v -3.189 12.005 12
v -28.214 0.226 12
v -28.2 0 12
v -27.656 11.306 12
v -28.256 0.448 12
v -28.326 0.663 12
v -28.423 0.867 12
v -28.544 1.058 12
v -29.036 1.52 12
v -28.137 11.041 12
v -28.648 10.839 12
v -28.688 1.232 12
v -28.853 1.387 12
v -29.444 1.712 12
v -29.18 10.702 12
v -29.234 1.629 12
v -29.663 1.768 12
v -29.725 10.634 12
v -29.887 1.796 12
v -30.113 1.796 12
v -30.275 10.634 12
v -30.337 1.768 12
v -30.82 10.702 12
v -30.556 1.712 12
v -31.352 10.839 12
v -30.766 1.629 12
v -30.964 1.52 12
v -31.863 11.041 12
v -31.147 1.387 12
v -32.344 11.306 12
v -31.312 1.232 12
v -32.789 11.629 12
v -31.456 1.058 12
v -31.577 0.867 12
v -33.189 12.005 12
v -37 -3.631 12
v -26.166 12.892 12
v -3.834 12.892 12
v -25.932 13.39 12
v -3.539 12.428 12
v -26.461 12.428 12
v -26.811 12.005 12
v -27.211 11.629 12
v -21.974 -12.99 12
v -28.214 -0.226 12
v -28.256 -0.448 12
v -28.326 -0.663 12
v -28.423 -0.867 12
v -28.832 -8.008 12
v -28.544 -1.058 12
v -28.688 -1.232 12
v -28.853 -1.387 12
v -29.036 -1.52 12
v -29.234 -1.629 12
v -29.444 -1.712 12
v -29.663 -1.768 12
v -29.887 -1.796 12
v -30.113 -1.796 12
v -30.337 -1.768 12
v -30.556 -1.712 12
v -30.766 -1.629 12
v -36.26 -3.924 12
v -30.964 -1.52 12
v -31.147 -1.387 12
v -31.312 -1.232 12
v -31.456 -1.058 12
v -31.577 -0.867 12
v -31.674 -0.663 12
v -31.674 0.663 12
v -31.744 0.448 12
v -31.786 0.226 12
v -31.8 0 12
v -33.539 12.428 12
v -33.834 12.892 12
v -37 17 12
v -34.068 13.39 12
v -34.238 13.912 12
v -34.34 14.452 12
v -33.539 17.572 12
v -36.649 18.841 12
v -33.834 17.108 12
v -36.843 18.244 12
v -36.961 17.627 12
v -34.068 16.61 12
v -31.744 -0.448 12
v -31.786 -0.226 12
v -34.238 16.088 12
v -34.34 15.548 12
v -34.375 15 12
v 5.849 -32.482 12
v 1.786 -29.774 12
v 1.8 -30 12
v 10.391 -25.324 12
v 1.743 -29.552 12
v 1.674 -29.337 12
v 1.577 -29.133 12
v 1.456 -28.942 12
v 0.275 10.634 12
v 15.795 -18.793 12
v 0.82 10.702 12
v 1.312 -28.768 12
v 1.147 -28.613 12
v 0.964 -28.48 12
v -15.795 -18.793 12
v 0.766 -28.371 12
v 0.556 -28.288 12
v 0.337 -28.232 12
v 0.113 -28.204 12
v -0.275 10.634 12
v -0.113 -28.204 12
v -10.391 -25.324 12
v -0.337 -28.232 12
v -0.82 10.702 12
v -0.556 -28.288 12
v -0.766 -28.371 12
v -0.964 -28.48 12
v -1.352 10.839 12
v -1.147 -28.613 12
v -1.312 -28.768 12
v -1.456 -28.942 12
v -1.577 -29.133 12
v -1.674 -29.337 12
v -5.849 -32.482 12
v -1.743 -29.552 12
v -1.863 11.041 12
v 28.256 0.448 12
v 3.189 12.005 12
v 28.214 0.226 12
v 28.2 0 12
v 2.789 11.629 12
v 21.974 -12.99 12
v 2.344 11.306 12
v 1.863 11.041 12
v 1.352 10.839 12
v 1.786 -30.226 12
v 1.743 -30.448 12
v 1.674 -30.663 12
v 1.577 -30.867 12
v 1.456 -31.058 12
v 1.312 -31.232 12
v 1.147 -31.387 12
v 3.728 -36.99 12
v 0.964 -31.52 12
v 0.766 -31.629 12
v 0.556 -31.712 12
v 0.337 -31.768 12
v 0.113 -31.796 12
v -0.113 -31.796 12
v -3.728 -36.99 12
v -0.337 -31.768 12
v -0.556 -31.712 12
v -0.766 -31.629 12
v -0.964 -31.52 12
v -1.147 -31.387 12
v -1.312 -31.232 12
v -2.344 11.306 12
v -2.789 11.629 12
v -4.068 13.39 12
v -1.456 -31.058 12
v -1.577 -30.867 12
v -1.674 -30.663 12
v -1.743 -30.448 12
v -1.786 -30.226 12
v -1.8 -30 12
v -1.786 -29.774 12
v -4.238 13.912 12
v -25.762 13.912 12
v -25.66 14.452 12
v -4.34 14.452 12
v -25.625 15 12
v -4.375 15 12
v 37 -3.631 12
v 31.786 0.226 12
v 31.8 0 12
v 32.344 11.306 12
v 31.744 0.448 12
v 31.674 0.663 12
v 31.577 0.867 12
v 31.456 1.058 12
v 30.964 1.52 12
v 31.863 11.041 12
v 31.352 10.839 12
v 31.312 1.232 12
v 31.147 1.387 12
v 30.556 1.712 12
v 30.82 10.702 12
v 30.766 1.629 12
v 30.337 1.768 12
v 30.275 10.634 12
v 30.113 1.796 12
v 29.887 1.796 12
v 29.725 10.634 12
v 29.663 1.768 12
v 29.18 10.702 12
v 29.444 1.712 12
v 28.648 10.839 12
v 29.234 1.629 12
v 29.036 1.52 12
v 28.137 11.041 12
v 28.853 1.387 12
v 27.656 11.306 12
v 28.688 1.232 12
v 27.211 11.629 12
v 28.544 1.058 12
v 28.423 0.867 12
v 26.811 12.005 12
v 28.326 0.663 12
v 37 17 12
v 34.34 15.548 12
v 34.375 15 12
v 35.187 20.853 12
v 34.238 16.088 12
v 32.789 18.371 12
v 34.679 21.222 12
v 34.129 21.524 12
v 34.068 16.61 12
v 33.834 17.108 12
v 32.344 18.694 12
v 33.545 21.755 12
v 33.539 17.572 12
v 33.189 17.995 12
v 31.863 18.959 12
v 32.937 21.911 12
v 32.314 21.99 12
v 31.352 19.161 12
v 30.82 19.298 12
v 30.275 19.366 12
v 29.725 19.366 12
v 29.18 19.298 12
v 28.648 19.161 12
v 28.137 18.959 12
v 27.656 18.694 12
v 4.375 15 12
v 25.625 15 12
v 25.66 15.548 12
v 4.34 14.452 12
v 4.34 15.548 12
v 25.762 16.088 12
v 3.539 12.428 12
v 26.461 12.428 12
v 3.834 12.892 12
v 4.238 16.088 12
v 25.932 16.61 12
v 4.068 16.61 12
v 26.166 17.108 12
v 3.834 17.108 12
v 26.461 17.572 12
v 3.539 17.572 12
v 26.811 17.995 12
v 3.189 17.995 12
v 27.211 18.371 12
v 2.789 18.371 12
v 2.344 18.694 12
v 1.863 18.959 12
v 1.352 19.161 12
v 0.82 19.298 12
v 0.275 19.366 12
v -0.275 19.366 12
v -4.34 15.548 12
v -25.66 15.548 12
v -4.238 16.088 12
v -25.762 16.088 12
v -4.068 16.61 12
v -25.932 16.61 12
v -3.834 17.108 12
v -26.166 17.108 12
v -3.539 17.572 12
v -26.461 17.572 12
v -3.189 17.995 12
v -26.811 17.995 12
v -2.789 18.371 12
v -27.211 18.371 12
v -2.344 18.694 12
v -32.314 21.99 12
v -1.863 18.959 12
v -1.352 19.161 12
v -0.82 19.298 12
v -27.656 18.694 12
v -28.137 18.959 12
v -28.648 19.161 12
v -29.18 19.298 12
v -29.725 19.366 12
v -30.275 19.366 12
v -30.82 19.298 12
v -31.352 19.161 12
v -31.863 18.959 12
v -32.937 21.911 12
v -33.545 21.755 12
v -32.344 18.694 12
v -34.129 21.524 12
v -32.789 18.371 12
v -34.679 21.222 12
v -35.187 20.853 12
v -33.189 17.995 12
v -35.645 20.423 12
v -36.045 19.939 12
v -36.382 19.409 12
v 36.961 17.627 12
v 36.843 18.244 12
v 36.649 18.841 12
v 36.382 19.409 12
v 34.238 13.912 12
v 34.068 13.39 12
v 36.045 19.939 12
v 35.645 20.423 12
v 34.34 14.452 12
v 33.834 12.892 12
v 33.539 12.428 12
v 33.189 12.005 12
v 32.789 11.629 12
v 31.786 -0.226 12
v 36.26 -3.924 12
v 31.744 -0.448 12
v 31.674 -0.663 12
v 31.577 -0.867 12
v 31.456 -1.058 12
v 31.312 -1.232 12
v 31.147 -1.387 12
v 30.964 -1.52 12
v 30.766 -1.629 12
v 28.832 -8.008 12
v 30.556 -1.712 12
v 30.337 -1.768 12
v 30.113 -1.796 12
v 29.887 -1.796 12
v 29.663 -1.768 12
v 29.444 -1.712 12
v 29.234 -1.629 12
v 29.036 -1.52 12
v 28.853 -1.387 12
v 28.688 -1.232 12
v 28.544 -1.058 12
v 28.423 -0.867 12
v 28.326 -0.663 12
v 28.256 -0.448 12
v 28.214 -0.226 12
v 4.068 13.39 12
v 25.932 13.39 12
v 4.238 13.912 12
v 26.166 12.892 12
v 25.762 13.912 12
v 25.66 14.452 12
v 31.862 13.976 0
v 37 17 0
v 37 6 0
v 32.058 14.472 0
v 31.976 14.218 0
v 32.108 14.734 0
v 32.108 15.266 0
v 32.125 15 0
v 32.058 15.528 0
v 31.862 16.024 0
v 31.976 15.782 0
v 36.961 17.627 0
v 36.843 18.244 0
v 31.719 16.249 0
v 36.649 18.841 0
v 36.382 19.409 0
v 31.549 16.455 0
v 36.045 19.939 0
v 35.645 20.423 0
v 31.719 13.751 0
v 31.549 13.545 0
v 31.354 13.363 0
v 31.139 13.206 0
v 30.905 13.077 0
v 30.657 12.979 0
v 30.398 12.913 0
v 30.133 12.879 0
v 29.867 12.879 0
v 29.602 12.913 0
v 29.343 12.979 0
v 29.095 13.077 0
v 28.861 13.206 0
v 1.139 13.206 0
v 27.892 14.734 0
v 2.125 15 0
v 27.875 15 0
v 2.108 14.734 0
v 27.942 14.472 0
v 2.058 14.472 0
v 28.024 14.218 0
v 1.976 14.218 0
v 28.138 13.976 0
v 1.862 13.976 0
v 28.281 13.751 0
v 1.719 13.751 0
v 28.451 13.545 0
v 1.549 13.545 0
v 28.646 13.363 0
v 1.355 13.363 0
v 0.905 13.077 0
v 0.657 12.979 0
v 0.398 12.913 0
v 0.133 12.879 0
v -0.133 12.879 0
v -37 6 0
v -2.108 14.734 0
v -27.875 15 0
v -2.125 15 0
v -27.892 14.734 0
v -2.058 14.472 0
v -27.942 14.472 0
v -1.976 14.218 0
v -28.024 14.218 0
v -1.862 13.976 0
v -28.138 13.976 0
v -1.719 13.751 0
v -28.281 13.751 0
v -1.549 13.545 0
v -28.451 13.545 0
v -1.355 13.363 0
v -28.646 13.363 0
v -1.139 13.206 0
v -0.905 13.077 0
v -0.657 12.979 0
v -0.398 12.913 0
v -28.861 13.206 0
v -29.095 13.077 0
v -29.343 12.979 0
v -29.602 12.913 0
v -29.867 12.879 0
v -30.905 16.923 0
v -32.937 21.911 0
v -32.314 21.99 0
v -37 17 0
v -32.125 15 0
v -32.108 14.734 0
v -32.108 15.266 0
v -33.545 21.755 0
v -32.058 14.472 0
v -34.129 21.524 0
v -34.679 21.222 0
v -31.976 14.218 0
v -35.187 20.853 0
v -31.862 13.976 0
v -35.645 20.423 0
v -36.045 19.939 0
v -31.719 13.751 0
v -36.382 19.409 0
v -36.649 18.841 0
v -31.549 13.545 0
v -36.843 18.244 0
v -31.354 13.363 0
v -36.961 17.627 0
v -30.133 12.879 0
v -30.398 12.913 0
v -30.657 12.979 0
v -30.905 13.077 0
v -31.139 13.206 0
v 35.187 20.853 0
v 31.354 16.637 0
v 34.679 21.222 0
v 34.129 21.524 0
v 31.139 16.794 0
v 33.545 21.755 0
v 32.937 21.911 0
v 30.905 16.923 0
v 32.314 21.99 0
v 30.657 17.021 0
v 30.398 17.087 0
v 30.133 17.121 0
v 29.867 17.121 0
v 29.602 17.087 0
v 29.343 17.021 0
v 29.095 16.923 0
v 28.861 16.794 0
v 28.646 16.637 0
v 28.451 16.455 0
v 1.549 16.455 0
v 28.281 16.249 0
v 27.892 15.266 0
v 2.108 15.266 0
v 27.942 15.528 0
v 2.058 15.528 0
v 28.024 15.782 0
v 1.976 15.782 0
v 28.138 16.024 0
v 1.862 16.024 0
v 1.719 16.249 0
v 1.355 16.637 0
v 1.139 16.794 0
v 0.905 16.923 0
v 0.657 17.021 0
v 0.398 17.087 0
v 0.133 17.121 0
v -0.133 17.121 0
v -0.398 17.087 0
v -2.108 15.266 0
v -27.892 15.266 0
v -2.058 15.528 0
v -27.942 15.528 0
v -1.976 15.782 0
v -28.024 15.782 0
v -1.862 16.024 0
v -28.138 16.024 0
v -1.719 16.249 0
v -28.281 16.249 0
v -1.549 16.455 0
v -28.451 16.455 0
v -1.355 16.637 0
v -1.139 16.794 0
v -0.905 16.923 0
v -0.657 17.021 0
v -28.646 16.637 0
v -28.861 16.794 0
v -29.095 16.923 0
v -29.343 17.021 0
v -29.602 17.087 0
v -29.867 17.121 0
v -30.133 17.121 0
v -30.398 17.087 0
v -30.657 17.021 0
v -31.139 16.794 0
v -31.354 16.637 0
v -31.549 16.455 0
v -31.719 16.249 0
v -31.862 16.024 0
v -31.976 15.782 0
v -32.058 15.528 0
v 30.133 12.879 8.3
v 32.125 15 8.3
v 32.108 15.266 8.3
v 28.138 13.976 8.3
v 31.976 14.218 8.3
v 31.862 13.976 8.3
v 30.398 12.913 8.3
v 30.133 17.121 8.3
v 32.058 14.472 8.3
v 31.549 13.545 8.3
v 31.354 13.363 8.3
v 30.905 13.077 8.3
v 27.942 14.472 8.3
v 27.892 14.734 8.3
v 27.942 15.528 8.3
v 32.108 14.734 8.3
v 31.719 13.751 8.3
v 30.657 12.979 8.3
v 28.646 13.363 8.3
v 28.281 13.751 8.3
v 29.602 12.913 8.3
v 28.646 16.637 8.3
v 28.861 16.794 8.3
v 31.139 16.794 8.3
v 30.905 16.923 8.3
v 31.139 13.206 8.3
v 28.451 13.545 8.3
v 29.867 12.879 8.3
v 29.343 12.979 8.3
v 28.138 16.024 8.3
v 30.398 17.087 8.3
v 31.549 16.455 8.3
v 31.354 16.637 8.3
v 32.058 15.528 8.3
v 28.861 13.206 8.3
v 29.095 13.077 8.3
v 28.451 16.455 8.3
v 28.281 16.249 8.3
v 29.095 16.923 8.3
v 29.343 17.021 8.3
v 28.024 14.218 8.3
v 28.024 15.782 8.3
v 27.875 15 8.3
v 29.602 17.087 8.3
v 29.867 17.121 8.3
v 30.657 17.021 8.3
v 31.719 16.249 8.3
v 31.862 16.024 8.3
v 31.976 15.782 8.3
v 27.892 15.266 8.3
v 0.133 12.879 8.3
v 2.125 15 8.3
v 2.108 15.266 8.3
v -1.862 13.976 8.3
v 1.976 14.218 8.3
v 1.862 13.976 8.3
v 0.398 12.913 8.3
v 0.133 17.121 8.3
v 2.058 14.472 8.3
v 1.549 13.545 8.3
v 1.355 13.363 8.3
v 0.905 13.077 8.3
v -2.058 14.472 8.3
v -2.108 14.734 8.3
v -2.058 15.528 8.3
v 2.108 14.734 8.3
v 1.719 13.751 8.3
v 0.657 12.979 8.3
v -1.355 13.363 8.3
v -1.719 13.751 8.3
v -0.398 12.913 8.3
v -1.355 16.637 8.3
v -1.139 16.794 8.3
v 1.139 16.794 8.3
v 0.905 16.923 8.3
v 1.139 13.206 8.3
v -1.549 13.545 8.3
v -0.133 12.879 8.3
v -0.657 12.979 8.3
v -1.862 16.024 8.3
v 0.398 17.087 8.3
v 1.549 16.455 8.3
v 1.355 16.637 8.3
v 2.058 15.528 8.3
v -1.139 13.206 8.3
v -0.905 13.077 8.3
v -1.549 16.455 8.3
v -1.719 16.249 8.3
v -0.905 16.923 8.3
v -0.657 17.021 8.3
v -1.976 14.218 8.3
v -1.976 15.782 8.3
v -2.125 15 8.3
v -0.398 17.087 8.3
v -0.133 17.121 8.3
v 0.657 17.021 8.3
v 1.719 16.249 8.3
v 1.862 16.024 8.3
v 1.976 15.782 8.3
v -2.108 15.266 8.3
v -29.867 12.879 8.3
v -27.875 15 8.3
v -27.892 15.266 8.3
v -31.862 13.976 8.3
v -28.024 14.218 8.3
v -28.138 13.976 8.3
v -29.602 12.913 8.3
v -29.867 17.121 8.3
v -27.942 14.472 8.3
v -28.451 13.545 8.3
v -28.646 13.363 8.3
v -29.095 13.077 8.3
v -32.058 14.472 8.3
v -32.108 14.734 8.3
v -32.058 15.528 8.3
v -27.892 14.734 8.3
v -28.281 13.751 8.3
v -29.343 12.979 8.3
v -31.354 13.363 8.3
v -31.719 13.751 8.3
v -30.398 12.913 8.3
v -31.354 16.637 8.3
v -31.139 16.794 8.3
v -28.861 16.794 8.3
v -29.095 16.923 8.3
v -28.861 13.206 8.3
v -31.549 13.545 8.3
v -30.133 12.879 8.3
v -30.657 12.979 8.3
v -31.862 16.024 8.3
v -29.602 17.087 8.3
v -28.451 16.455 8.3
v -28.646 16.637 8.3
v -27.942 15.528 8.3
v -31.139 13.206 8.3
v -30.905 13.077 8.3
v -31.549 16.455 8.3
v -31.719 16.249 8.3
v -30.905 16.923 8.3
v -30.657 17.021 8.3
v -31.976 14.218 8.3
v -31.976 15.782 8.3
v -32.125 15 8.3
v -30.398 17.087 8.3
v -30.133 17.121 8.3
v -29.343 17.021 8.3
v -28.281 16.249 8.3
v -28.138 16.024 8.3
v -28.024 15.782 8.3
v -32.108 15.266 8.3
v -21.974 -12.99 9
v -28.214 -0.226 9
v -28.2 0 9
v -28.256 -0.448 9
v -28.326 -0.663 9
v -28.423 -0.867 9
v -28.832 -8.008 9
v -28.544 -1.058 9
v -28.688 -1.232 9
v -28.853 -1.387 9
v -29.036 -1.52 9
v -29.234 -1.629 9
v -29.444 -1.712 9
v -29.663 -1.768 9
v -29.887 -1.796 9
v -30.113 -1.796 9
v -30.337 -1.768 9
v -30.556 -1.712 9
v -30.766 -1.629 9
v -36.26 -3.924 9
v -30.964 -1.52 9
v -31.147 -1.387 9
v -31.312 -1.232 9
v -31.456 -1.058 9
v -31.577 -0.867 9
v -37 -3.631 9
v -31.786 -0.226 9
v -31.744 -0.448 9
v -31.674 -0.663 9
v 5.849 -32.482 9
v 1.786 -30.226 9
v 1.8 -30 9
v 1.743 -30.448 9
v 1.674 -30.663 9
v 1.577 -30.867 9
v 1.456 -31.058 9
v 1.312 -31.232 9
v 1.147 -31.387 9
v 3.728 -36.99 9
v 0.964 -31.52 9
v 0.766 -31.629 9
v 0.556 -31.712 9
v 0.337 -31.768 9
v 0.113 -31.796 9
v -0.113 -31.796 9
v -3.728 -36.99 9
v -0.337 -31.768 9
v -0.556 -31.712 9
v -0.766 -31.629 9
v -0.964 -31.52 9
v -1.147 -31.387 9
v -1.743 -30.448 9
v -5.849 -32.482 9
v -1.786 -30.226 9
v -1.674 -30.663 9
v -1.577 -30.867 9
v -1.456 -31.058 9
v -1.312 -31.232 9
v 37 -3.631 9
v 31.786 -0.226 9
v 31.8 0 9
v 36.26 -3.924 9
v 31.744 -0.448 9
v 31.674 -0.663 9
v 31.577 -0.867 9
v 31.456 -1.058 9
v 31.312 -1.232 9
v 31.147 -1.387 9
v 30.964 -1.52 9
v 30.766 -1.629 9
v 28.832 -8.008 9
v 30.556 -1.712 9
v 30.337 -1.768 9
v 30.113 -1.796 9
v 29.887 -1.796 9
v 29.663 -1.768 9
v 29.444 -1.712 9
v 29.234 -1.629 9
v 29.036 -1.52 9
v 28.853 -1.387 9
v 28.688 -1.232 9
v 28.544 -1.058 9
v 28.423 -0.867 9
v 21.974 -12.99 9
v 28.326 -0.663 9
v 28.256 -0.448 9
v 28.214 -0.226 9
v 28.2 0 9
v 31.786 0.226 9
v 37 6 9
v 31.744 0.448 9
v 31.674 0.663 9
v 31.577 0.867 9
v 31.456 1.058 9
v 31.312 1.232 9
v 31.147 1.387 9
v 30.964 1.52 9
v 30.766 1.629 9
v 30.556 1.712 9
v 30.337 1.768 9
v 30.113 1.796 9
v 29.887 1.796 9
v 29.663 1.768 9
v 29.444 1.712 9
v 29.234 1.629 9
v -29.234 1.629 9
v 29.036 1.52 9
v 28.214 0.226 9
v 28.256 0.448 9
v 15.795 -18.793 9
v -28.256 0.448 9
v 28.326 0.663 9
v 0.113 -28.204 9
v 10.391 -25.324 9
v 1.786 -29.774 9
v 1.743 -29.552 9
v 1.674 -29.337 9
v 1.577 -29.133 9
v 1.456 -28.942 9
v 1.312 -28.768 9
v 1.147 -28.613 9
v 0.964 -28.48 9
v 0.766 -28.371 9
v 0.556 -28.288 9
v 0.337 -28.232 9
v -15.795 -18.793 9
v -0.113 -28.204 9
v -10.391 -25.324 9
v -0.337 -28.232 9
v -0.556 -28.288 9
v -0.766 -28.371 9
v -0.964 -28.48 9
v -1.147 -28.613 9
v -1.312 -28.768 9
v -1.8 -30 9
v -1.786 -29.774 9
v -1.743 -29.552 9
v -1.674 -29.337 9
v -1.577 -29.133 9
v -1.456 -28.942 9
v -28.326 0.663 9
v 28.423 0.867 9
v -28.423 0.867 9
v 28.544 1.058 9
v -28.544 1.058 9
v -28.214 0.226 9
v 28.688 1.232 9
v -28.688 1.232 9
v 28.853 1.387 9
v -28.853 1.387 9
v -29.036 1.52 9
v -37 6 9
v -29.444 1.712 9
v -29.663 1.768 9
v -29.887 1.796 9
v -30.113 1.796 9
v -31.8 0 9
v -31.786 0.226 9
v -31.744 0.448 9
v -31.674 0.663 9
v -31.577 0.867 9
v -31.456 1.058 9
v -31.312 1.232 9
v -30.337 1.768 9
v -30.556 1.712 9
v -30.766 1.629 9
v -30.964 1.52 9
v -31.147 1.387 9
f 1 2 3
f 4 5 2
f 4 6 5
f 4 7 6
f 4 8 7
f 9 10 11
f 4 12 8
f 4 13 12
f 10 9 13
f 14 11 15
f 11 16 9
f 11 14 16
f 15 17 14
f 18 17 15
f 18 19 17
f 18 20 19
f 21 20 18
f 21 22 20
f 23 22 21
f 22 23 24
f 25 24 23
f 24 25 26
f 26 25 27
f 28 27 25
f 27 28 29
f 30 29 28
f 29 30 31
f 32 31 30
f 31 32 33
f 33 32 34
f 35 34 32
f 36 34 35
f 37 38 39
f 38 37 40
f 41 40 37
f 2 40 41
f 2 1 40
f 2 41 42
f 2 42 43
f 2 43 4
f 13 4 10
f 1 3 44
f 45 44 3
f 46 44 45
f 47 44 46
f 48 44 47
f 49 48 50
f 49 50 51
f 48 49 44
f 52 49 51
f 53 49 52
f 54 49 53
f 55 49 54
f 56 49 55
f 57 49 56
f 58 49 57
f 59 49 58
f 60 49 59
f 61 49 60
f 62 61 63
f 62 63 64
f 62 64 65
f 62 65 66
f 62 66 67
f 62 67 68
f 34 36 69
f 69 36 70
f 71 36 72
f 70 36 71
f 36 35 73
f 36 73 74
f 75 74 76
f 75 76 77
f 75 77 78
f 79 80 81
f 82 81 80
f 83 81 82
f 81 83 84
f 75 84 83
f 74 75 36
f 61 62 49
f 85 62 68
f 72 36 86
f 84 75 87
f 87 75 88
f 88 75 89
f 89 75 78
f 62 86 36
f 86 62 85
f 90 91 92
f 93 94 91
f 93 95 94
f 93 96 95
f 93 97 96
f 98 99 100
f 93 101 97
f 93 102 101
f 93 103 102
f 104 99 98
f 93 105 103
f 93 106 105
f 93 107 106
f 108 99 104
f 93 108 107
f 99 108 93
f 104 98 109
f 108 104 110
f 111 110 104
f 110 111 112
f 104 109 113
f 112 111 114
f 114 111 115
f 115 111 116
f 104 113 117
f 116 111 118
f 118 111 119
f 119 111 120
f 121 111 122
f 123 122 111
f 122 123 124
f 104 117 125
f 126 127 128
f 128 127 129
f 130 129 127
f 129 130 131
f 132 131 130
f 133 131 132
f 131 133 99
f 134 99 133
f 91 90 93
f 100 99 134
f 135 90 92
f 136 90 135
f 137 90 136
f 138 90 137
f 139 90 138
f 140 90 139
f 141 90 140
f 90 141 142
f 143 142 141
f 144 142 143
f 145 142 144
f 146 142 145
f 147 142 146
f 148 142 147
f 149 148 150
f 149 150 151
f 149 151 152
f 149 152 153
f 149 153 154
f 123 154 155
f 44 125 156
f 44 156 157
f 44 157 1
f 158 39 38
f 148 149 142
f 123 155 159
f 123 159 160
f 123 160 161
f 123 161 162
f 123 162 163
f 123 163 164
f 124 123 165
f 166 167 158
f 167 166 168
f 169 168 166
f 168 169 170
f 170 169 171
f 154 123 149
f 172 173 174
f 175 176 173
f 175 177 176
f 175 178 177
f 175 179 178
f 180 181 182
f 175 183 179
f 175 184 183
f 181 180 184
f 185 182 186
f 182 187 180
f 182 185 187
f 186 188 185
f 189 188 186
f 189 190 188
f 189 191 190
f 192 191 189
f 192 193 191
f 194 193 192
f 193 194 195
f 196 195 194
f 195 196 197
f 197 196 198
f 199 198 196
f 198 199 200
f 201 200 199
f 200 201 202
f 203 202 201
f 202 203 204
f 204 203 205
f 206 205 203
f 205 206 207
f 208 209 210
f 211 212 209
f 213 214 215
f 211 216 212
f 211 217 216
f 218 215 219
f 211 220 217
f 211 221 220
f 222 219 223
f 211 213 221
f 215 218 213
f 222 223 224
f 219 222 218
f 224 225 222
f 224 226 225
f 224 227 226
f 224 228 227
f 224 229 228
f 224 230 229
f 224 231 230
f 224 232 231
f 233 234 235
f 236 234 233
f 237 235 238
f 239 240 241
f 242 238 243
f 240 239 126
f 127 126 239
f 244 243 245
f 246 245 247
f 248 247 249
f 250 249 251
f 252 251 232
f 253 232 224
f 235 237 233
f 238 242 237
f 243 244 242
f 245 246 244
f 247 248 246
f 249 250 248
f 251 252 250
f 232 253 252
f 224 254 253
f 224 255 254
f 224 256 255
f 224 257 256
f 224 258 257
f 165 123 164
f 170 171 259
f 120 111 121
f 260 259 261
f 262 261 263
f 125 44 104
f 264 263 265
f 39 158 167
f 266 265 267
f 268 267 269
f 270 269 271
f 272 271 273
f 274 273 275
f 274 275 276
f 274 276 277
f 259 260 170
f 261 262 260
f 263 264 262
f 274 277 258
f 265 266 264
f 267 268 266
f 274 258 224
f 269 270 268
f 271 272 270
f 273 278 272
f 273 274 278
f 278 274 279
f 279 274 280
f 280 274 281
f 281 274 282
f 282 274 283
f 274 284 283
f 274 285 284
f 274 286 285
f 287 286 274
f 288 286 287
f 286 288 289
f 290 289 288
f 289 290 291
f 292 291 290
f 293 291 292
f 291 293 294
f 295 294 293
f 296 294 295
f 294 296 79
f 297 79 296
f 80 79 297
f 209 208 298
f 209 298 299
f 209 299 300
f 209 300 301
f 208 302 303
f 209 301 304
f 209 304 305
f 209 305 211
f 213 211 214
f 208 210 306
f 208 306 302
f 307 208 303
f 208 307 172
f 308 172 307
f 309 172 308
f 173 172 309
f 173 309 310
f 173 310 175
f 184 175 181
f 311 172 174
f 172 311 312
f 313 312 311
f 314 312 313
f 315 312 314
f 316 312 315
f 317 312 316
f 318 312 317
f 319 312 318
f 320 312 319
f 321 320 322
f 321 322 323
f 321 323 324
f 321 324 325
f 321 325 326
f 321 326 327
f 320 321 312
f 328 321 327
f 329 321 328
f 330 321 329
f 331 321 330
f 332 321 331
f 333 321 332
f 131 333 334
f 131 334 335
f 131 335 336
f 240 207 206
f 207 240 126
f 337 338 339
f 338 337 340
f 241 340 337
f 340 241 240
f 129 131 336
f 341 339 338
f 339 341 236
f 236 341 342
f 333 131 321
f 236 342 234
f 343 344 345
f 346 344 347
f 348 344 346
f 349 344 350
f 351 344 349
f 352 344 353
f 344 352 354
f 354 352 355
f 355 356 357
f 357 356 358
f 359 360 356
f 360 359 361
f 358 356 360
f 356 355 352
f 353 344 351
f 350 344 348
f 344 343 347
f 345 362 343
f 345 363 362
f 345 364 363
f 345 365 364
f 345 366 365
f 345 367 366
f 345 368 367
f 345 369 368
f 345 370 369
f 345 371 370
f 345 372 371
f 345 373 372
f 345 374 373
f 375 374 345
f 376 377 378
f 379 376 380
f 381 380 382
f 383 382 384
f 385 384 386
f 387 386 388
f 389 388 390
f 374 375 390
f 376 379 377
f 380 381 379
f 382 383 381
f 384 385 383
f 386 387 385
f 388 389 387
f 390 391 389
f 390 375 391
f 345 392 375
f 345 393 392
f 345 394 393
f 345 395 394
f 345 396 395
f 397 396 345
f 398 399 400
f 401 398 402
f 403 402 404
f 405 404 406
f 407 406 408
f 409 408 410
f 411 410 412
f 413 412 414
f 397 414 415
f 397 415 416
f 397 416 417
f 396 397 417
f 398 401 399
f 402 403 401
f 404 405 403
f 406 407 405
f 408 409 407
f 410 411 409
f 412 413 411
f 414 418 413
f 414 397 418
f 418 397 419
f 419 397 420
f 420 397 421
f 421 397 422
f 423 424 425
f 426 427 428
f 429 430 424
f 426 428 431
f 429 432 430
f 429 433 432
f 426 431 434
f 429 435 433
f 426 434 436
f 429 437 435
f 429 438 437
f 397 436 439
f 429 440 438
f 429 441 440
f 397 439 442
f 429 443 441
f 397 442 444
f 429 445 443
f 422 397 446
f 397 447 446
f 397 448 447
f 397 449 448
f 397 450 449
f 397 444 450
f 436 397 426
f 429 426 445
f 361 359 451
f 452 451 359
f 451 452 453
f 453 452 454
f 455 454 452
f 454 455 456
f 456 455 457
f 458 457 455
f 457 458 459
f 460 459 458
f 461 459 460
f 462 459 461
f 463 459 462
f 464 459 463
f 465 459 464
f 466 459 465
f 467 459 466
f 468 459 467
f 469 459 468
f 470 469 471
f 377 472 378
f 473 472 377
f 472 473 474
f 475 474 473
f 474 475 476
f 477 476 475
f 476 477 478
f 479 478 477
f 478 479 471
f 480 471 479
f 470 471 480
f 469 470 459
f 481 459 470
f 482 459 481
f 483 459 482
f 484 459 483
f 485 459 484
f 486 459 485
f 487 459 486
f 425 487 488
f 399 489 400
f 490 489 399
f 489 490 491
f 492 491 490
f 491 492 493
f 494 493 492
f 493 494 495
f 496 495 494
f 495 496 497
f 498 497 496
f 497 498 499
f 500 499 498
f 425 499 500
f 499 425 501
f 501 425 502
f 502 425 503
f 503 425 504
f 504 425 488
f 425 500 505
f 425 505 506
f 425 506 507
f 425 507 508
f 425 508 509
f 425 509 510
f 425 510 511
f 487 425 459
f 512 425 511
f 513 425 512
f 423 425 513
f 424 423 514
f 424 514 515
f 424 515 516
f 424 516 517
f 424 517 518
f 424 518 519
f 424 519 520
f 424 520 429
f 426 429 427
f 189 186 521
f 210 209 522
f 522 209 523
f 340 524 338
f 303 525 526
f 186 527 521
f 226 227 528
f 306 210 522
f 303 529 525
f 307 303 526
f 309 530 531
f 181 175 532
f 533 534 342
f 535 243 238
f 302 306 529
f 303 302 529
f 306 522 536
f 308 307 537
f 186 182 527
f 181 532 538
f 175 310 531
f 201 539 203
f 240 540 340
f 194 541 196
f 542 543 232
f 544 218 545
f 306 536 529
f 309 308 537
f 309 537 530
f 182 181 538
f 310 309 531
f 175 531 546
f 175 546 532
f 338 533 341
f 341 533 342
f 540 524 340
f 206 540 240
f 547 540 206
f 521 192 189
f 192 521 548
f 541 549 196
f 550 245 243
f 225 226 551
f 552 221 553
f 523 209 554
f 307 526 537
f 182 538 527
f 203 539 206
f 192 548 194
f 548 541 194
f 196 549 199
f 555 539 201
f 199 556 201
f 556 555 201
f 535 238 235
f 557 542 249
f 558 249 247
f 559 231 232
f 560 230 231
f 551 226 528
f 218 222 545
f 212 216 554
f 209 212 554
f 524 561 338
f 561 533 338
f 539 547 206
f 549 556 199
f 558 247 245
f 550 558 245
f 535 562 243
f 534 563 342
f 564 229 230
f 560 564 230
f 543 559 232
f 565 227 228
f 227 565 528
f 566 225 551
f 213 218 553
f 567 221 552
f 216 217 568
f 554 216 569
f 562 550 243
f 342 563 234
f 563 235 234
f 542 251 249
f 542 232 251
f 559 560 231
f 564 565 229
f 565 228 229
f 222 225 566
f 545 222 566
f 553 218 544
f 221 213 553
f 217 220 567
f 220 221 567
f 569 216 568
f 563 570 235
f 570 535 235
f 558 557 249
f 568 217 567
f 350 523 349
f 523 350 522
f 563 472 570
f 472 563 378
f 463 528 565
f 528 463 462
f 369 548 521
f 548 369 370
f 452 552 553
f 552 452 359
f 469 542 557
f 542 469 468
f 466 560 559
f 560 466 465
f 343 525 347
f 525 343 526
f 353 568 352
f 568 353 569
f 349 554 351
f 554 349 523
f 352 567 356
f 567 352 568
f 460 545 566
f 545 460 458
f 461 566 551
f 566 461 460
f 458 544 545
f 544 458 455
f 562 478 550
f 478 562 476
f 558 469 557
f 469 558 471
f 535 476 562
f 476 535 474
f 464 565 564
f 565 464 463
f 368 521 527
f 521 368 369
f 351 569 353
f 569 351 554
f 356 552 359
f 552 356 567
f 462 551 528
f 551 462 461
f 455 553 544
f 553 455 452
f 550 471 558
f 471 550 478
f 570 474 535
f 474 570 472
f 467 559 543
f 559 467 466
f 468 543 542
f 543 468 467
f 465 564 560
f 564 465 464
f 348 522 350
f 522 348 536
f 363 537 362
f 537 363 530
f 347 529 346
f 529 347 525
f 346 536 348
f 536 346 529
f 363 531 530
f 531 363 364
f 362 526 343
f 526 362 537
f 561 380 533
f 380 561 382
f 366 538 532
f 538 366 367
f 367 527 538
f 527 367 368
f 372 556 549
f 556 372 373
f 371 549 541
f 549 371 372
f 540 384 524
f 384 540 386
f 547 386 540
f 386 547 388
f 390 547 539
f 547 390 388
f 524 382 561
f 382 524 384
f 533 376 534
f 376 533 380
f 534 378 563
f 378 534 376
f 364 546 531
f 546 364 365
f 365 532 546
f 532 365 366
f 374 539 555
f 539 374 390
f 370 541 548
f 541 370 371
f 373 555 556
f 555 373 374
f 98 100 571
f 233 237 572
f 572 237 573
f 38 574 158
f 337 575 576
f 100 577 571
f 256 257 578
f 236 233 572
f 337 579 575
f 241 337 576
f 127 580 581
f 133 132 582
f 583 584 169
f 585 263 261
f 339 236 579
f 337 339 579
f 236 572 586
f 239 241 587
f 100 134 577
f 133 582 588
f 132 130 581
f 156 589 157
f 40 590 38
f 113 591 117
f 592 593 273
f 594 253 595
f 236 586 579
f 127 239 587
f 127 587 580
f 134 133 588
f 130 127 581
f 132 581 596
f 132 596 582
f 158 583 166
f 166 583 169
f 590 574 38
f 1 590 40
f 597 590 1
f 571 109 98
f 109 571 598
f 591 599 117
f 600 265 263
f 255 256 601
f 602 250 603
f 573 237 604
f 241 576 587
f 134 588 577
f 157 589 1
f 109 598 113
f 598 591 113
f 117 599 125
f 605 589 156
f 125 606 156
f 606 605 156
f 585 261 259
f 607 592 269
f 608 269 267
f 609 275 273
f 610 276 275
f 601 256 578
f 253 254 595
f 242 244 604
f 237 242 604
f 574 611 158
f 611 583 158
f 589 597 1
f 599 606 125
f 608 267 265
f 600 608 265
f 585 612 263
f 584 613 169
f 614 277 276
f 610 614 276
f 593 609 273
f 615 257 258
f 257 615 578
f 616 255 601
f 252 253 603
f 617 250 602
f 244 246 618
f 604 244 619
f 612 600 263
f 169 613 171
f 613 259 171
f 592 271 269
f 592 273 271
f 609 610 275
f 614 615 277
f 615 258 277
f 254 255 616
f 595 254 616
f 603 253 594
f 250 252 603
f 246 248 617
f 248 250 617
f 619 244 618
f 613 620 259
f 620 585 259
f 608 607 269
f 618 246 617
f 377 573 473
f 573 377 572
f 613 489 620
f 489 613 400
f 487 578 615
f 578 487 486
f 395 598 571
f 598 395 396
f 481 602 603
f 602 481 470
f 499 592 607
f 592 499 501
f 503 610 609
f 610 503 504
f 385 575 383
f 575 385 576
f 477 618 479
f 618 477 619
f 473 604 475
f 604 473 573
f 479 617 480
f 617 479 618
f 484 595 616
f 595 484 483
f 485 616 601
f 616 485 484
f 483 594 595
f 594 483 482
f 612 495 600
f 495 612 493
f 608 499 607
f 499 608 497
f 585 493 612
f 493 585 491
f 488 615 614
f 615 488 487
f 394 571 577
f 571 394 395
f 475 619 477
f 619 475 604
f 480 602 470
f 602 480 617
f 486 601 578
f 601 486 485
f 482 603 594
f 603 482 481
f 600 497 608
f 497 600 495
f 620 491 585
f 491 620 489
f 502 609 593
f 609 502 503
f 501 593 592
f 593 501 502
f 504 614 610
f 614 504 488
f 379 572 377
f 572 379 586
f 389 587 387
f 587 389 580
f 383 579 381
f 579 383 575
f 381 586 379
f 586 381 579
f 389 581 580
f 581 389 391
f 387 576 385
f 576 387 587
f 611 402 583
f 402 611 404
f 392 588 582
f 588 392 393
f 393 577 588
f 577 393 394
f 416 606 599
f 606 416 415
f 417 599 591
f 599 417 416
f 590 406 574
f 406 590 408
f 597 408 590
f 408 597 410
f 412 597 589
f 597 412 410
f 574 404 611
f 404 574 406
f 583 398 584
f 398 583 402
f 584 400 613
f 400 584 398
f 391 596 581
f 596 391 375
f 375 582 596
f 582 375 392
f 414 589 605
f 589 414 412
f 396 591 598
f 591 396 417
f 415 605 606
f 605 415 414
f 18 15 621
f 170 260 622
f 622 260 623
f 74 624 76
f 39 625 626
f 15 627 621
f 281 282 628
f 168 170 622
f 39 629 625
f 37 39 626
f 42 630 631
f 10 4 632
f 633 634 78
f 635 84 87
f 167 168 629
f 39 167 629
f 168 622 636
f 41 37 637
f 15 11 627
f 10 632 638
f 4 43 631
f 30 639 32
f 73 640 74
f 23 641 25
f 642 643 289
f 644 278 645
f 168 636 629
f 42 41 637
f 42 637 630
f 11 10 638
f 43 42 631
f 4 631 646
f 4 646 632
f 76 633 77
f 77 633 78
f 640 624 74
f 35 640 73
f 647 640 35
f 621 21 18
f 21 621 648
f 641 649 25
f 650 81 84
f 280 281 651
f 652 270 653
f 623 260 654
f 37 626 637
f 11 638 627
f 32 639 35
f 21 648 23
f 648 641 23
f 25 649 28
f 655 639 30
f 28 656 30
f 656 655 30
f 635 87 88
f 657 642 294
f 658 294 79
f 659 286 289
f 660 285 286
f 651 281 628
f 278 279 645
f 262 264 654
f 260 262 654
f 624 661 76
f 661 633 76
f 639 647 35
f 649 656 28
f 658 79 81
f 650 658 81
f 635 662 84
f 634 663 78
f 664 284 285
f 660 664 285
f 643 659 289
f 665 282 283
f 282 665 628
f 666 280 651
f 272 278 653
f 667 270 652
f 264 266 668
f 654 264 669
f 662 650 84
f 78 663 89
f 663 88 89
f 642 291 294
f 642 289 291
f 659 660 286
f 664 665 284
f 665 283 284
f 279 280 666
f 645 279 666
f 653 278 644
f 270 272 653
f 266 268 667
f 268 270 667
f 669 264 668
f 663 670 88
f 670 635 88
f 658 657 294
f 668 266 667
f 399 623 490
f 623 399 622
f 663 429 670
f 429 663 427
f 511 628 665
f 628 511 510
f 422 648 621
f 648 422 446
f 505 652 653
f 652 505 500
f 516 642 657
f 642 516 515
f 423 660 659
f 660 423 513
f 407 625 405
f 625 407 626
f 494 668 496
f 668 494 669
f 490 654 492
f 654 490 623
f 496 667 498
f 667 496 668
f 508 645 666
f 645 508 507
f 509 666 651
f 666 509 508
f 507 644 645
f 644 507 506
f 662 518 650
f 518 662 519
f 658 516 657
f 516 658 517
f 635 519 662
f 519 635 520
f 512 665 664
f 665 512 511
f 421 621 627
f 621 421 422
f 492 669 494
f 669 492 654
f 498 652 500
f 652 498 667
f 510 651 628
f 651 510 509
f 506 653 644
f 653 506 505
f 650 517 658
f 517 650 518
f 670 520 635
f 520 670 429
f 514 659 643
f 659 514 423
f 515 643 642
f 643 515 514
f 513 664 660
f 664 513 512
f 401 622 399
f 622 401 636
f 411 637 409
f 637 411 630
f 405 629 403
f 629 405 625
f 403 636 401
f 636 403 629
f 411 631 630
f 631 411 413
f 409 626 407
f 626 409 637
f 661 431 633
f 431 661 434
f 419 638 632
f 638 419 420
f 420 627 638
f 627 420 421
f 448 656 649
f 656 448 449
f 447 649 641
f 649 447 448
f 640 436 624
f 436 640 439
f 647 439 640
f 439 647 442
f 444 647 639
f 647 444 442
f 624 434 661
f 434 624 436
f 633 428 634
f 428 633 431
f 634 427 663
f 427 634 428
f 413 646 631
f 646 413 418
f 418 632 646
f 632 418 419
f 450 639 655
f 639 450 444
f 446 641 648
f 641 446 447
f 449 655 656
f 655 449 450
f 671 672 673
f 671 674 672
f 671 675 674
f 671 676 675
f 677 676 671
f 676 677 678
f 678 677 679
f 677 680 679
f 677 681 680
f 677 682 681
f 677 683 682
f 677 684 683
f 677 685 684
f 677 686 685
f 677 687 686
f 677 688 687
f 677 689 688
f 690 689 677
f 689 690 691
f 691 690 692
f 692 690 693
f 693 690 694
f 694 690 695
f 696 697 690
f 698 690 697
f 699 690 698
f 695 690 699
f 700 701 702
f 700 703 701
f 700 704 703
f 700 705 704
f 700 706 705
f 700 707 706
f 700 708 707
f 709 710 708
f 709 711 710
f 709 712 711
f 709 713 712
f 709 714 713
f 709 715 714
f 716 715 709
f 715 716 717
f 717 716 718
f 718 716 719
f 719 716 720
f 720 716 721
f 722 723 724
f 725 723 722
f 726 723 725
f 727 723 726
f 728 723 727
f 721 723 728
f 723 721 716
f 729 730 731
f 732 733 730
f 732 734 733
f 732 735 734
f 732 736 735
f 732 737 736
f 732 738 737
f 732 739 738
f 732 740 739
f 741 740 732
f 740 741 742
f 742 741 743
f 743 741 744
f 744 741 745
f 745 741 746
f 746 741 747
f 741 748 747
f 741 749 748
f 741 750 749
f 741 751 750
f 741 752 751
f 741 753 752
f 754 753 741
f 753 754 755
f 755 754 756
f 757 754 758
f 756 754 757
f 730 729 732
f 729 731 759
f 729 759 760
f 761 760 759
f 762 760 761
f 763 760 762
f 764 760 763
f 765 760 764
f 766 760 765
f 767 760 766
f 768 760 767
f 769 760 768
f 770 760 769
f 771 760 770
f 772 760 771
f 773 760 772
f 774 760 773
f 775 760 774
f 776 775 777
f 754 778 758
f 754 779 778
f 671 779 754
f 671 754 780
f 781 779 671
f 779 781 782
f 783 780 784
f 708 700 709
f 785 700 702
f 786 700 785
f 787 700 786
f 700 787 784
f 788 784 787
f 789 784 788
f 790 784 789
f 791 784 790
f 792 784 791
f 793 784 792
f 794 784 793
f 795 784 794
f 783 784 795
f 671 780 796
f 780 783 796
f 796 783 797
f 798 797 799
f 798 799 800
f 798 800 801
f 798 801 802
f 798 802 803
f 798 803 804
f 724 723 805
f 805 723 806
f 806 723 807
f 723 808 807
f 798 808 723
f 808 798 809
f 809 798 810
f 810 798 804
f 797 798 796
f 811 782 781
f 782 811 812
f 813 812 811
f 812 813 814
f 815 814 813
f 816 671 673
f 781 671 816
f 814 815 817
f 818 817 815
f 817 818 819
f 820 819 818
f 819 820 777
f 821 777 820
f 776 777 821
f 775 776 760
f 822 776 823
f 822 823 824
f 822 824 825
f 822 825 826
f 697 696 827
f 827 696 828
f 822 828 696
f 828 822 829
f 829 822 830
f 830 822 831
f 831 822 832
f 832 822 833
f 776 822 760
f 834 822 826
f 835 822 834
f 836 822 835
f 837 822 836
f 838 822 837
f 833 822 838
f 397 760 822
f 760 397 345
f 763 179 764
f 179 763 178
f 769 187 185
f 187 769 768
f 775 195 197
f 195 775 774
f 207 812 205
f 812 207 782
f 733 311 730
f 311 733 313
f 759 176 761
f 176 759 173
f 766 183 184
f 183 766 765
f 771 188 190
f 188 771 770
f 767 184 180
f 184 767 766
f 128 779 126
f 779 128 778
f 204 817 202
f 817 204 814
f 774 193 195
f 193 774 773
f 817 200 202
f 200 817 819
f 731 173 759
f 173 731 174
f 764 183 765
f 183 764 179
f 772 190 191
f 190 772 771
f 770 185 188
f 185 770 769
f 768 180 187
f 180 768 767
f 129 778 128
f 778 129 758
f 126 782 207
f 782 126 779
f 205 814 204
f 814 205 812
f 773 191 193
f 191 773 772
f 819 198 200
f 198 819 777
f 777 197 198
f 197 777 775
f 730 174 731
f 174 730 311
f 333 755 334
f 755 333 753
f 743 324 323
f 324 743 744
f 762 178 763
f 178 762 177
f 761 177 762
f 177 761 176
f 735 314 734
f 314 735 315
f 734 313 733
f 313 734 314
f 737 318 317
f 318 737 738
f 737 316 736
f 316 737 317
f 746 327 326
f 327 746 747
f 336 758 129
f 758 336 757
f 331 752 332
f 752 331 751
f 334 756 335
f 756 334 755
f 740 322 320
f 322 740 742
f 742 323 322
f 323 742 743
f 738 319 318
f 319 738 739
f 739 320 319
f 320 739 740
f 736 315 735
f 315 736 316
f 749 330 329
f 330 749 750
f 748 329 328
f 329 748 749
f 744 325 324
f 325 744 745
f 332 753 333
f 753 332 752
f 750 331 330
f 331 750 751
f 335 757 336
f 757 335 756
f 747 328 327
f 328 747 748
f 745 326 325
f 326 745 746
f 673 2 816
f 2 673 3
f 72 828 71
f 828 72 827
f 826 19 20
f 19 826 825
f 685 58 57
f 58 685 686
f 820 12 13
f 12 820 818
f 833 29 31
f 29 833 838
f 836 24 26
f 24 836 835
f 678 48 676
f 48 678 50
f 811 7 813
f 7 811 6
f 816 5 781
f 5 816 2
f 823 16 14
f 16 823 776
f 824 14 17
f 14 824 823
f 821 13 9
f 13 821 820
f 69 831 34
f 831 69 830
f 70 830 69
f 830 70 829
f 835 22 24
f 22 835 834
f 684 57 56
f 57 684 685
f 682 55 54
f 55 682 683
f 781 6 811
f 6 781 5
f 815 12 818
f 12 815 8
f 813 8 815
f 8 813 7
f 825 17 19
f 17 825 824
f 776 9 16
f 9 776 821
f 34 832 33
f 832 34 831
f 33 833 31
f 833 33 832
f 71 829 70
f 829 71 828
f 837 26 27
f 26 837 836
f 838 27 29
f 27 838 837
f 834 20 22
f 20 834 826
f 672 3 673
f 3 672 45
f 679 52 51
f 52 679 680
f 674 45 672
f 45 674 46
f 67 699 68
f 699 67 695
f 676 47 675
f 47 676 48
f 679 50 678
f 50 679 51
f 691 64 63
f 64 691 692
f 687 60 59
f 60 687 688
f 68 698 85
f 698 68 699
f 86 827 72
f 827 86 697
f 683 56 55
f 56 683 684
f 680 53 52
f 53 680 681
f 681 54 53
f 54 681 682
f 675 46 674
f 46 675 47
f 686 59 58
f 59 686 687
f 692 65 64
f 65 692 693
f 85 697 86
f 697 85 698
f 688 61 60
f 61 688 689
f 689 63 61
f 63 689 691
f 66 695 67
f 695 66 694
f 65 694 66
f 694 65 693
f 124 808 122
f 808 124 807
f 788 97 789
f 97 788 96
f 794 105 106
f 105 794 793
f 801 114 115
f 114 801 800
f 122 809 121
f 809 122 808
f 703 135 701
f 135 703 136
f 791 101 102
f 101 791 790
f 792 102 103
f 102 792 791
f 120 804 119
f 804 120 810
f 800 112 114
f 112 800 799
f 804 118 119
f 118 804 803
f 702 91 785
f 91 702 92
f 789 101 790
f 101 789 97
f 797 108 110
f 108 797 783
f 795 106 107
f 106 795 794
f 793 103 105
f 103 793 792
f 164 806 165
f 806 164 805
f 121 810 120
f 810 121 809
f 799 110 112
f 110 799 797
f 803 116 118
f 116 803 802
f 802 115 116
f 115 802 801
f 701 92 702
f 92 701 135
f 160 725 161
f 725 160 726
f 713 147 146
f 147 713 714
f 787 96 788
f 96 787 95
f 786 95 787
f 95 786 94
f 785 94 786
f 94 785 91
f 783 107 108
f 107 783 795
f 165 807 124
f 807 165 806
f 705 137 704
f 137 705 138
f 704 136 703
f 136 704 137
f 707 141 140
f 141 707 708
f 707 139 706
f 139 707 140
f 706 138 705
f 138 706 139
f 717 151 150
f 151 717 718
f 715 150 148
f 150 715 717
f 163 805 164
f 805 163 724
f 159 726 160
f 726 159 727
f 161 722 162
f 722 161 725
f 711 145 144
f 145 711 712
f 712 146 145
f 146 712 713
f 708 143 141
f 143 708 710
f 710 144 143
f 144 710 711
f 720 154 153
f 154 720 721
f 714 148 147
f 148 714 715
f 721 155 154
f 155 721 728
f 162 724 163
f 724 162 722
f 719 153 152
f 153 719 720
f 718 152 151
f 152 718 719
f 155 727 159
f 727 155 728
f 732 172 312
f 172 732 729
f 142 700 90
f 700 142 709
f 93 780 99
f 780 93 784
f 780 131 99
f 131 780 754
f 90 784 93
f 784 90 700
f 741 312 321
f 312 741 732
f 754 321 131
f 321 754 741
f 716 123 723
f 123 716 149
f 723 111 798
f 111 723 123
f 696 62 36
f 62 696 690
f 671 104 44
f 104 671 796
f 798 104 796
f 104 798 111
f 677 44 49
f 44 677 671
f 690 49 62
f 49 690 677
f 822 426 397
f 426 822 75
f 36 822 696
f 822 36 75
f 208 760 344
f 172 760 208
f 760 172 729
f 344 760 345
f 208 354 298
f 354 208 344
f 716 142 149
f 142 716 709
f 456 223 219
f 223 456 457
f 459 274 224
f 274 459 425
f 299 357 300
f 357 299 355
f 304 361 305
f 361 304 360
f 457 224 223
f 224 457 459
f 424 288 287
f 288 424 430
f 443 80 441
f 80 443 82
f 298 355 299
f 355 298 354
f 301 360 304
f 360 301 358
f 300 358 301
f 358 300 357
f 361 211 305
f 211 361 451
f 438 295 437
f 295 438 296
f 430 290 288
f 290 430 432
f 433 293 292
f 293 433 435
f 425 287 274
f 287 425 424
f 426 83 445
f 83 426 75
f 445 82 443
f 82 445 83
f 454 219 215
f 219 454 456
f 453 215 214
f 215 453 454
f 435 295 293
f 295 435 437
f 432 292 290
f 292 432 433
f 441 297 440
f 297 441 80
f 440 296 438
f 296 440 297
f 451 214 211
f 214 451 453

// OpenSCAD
$fn = 50;


difference() {
	union() {
		translate(v = [0, -7.5000000000, 0]) {
			hull() {
				translate(v = [-32.0000000000, 24.5000000000, 0]) {
					cylinder(h = 12, r = 5);
				}
				translate(v = [32.0000000000, 24.5000000000, 0]) {
					cylinder(h = 12, r = 5);
				}
				translate(v = [-32.0000000000, -24.5000000000, 0]) {
					cylinder(h = 12, r = 5);
				}
				translate(v = [32.0000000000, -24.5000000000, 0]) {
					cylinder(h = 12, r = 5);
				}
			}
		}
	}
	union() {
		translate(v = [30, 15, 12]) {
			rotate(a = [0, 0, 0]) {
				difference() {
					union() {
						translate(v = [0, 0, -12.0000000000]) {
							cylinder(h = 12, r = 2.0000000000);
						}
						translate(v = [0, 0, -3.7000000000]) {
							cylinder(h = 3.7000000000, r1 = 2.1250000000, r2 = 4.3750000000);
						}
						translate(v = [0, 0, -12.0000000000]) {
							cylinder(h = 12, r = 2.1250000000);
						}
						translate(v = [0, 0, -12.0000000000]) {
							cylinder(h = 12, r = 2.0000000000);
						}
					}
					union();
				}
			}
		}
		translate(v = [0, 15, 12]) {
			rotate(a = [0, 0, 0]) {
				difference() {
					union() {
						translate(v = [0, 0, -12.0000000000]) {
							cylinder(h = 12, r = 2.0000000000);
						}
						translate(v = [0, 0, -3.7000000000]) {
							cylinder(h = 3.7000000000, r1 = 2.1250000000, r2 = 4.3750000000);
						}
						translate(v = [0, 0, -12.0000000000]) {
							cylinder(h = 12, r = 2.1250000000);
						}
						translate(v = [0, 0, -12.0000000000]) {
							cylinder(h = 12, r = 2.0000000000);
						}
					}
					union();
				}
			}
		}
		translate(v = [-30, 15, 12]) {
			rotate(a = [0, 0, 0]) {
				difference() {
					union() {
						translate(v = [0, 0, -12.0000000000]) {
							cylinder(h = 12, r = 2.0000000000);
						}
						translate(v = [0, 0, -3.7000000000]) {
							cylinder(h = 3.7000000000, r1 = 2.1250000000, r2 = 4.3750000000);
						}
						translate(v = [0, 0, -12.0000000000]) {
							cylinder(h = 12, r = 2.1250000000);
						}
						translate(v = [0, 0, -12.0000000000]) {
							cylinder(h = 12, r = 2.0000000000);
						}
					}
					union();
				}
			}
		}
		translate(v = [-250.0000000000, -494, -491]) {
			cube(size = [500, 500, 500]);
		}
		translate(v = [-250.0000000000, -494, -491]) {
			cube(size = [500, 500, 500]);
		}
		translate(v = [-250.0000000000, -494, -491]) {
			cube(size = [500, 500, 500]);
		}
		translate(v = [30, 0, -100.0000000000]) {
			cylinder(h = 200, r = 1.8000000000);
		}
		translate(v = [-30, 0, -100.0000000000]) {
			cylinder(h = 200, r = 1.8000000000);
		}
		translate(v = [0, -30, -100.0000000000]) {
			cylinder(h = 200, r = 1.8000000000);
		}
		translate(v = [0, 30, -100.0000000000]) {
			cylinder(h = 200, r = 1.8000000000);
		}
		translate(v = [65, -65, 0.0000000000]) {
			cylinder(h = 12, r = 67.5000000000);
		}
		translate(v = [-65, -65, 0.0000000000]) {
			cylinder(h = 12, r = 67.5000000000);
		}
	}
}
